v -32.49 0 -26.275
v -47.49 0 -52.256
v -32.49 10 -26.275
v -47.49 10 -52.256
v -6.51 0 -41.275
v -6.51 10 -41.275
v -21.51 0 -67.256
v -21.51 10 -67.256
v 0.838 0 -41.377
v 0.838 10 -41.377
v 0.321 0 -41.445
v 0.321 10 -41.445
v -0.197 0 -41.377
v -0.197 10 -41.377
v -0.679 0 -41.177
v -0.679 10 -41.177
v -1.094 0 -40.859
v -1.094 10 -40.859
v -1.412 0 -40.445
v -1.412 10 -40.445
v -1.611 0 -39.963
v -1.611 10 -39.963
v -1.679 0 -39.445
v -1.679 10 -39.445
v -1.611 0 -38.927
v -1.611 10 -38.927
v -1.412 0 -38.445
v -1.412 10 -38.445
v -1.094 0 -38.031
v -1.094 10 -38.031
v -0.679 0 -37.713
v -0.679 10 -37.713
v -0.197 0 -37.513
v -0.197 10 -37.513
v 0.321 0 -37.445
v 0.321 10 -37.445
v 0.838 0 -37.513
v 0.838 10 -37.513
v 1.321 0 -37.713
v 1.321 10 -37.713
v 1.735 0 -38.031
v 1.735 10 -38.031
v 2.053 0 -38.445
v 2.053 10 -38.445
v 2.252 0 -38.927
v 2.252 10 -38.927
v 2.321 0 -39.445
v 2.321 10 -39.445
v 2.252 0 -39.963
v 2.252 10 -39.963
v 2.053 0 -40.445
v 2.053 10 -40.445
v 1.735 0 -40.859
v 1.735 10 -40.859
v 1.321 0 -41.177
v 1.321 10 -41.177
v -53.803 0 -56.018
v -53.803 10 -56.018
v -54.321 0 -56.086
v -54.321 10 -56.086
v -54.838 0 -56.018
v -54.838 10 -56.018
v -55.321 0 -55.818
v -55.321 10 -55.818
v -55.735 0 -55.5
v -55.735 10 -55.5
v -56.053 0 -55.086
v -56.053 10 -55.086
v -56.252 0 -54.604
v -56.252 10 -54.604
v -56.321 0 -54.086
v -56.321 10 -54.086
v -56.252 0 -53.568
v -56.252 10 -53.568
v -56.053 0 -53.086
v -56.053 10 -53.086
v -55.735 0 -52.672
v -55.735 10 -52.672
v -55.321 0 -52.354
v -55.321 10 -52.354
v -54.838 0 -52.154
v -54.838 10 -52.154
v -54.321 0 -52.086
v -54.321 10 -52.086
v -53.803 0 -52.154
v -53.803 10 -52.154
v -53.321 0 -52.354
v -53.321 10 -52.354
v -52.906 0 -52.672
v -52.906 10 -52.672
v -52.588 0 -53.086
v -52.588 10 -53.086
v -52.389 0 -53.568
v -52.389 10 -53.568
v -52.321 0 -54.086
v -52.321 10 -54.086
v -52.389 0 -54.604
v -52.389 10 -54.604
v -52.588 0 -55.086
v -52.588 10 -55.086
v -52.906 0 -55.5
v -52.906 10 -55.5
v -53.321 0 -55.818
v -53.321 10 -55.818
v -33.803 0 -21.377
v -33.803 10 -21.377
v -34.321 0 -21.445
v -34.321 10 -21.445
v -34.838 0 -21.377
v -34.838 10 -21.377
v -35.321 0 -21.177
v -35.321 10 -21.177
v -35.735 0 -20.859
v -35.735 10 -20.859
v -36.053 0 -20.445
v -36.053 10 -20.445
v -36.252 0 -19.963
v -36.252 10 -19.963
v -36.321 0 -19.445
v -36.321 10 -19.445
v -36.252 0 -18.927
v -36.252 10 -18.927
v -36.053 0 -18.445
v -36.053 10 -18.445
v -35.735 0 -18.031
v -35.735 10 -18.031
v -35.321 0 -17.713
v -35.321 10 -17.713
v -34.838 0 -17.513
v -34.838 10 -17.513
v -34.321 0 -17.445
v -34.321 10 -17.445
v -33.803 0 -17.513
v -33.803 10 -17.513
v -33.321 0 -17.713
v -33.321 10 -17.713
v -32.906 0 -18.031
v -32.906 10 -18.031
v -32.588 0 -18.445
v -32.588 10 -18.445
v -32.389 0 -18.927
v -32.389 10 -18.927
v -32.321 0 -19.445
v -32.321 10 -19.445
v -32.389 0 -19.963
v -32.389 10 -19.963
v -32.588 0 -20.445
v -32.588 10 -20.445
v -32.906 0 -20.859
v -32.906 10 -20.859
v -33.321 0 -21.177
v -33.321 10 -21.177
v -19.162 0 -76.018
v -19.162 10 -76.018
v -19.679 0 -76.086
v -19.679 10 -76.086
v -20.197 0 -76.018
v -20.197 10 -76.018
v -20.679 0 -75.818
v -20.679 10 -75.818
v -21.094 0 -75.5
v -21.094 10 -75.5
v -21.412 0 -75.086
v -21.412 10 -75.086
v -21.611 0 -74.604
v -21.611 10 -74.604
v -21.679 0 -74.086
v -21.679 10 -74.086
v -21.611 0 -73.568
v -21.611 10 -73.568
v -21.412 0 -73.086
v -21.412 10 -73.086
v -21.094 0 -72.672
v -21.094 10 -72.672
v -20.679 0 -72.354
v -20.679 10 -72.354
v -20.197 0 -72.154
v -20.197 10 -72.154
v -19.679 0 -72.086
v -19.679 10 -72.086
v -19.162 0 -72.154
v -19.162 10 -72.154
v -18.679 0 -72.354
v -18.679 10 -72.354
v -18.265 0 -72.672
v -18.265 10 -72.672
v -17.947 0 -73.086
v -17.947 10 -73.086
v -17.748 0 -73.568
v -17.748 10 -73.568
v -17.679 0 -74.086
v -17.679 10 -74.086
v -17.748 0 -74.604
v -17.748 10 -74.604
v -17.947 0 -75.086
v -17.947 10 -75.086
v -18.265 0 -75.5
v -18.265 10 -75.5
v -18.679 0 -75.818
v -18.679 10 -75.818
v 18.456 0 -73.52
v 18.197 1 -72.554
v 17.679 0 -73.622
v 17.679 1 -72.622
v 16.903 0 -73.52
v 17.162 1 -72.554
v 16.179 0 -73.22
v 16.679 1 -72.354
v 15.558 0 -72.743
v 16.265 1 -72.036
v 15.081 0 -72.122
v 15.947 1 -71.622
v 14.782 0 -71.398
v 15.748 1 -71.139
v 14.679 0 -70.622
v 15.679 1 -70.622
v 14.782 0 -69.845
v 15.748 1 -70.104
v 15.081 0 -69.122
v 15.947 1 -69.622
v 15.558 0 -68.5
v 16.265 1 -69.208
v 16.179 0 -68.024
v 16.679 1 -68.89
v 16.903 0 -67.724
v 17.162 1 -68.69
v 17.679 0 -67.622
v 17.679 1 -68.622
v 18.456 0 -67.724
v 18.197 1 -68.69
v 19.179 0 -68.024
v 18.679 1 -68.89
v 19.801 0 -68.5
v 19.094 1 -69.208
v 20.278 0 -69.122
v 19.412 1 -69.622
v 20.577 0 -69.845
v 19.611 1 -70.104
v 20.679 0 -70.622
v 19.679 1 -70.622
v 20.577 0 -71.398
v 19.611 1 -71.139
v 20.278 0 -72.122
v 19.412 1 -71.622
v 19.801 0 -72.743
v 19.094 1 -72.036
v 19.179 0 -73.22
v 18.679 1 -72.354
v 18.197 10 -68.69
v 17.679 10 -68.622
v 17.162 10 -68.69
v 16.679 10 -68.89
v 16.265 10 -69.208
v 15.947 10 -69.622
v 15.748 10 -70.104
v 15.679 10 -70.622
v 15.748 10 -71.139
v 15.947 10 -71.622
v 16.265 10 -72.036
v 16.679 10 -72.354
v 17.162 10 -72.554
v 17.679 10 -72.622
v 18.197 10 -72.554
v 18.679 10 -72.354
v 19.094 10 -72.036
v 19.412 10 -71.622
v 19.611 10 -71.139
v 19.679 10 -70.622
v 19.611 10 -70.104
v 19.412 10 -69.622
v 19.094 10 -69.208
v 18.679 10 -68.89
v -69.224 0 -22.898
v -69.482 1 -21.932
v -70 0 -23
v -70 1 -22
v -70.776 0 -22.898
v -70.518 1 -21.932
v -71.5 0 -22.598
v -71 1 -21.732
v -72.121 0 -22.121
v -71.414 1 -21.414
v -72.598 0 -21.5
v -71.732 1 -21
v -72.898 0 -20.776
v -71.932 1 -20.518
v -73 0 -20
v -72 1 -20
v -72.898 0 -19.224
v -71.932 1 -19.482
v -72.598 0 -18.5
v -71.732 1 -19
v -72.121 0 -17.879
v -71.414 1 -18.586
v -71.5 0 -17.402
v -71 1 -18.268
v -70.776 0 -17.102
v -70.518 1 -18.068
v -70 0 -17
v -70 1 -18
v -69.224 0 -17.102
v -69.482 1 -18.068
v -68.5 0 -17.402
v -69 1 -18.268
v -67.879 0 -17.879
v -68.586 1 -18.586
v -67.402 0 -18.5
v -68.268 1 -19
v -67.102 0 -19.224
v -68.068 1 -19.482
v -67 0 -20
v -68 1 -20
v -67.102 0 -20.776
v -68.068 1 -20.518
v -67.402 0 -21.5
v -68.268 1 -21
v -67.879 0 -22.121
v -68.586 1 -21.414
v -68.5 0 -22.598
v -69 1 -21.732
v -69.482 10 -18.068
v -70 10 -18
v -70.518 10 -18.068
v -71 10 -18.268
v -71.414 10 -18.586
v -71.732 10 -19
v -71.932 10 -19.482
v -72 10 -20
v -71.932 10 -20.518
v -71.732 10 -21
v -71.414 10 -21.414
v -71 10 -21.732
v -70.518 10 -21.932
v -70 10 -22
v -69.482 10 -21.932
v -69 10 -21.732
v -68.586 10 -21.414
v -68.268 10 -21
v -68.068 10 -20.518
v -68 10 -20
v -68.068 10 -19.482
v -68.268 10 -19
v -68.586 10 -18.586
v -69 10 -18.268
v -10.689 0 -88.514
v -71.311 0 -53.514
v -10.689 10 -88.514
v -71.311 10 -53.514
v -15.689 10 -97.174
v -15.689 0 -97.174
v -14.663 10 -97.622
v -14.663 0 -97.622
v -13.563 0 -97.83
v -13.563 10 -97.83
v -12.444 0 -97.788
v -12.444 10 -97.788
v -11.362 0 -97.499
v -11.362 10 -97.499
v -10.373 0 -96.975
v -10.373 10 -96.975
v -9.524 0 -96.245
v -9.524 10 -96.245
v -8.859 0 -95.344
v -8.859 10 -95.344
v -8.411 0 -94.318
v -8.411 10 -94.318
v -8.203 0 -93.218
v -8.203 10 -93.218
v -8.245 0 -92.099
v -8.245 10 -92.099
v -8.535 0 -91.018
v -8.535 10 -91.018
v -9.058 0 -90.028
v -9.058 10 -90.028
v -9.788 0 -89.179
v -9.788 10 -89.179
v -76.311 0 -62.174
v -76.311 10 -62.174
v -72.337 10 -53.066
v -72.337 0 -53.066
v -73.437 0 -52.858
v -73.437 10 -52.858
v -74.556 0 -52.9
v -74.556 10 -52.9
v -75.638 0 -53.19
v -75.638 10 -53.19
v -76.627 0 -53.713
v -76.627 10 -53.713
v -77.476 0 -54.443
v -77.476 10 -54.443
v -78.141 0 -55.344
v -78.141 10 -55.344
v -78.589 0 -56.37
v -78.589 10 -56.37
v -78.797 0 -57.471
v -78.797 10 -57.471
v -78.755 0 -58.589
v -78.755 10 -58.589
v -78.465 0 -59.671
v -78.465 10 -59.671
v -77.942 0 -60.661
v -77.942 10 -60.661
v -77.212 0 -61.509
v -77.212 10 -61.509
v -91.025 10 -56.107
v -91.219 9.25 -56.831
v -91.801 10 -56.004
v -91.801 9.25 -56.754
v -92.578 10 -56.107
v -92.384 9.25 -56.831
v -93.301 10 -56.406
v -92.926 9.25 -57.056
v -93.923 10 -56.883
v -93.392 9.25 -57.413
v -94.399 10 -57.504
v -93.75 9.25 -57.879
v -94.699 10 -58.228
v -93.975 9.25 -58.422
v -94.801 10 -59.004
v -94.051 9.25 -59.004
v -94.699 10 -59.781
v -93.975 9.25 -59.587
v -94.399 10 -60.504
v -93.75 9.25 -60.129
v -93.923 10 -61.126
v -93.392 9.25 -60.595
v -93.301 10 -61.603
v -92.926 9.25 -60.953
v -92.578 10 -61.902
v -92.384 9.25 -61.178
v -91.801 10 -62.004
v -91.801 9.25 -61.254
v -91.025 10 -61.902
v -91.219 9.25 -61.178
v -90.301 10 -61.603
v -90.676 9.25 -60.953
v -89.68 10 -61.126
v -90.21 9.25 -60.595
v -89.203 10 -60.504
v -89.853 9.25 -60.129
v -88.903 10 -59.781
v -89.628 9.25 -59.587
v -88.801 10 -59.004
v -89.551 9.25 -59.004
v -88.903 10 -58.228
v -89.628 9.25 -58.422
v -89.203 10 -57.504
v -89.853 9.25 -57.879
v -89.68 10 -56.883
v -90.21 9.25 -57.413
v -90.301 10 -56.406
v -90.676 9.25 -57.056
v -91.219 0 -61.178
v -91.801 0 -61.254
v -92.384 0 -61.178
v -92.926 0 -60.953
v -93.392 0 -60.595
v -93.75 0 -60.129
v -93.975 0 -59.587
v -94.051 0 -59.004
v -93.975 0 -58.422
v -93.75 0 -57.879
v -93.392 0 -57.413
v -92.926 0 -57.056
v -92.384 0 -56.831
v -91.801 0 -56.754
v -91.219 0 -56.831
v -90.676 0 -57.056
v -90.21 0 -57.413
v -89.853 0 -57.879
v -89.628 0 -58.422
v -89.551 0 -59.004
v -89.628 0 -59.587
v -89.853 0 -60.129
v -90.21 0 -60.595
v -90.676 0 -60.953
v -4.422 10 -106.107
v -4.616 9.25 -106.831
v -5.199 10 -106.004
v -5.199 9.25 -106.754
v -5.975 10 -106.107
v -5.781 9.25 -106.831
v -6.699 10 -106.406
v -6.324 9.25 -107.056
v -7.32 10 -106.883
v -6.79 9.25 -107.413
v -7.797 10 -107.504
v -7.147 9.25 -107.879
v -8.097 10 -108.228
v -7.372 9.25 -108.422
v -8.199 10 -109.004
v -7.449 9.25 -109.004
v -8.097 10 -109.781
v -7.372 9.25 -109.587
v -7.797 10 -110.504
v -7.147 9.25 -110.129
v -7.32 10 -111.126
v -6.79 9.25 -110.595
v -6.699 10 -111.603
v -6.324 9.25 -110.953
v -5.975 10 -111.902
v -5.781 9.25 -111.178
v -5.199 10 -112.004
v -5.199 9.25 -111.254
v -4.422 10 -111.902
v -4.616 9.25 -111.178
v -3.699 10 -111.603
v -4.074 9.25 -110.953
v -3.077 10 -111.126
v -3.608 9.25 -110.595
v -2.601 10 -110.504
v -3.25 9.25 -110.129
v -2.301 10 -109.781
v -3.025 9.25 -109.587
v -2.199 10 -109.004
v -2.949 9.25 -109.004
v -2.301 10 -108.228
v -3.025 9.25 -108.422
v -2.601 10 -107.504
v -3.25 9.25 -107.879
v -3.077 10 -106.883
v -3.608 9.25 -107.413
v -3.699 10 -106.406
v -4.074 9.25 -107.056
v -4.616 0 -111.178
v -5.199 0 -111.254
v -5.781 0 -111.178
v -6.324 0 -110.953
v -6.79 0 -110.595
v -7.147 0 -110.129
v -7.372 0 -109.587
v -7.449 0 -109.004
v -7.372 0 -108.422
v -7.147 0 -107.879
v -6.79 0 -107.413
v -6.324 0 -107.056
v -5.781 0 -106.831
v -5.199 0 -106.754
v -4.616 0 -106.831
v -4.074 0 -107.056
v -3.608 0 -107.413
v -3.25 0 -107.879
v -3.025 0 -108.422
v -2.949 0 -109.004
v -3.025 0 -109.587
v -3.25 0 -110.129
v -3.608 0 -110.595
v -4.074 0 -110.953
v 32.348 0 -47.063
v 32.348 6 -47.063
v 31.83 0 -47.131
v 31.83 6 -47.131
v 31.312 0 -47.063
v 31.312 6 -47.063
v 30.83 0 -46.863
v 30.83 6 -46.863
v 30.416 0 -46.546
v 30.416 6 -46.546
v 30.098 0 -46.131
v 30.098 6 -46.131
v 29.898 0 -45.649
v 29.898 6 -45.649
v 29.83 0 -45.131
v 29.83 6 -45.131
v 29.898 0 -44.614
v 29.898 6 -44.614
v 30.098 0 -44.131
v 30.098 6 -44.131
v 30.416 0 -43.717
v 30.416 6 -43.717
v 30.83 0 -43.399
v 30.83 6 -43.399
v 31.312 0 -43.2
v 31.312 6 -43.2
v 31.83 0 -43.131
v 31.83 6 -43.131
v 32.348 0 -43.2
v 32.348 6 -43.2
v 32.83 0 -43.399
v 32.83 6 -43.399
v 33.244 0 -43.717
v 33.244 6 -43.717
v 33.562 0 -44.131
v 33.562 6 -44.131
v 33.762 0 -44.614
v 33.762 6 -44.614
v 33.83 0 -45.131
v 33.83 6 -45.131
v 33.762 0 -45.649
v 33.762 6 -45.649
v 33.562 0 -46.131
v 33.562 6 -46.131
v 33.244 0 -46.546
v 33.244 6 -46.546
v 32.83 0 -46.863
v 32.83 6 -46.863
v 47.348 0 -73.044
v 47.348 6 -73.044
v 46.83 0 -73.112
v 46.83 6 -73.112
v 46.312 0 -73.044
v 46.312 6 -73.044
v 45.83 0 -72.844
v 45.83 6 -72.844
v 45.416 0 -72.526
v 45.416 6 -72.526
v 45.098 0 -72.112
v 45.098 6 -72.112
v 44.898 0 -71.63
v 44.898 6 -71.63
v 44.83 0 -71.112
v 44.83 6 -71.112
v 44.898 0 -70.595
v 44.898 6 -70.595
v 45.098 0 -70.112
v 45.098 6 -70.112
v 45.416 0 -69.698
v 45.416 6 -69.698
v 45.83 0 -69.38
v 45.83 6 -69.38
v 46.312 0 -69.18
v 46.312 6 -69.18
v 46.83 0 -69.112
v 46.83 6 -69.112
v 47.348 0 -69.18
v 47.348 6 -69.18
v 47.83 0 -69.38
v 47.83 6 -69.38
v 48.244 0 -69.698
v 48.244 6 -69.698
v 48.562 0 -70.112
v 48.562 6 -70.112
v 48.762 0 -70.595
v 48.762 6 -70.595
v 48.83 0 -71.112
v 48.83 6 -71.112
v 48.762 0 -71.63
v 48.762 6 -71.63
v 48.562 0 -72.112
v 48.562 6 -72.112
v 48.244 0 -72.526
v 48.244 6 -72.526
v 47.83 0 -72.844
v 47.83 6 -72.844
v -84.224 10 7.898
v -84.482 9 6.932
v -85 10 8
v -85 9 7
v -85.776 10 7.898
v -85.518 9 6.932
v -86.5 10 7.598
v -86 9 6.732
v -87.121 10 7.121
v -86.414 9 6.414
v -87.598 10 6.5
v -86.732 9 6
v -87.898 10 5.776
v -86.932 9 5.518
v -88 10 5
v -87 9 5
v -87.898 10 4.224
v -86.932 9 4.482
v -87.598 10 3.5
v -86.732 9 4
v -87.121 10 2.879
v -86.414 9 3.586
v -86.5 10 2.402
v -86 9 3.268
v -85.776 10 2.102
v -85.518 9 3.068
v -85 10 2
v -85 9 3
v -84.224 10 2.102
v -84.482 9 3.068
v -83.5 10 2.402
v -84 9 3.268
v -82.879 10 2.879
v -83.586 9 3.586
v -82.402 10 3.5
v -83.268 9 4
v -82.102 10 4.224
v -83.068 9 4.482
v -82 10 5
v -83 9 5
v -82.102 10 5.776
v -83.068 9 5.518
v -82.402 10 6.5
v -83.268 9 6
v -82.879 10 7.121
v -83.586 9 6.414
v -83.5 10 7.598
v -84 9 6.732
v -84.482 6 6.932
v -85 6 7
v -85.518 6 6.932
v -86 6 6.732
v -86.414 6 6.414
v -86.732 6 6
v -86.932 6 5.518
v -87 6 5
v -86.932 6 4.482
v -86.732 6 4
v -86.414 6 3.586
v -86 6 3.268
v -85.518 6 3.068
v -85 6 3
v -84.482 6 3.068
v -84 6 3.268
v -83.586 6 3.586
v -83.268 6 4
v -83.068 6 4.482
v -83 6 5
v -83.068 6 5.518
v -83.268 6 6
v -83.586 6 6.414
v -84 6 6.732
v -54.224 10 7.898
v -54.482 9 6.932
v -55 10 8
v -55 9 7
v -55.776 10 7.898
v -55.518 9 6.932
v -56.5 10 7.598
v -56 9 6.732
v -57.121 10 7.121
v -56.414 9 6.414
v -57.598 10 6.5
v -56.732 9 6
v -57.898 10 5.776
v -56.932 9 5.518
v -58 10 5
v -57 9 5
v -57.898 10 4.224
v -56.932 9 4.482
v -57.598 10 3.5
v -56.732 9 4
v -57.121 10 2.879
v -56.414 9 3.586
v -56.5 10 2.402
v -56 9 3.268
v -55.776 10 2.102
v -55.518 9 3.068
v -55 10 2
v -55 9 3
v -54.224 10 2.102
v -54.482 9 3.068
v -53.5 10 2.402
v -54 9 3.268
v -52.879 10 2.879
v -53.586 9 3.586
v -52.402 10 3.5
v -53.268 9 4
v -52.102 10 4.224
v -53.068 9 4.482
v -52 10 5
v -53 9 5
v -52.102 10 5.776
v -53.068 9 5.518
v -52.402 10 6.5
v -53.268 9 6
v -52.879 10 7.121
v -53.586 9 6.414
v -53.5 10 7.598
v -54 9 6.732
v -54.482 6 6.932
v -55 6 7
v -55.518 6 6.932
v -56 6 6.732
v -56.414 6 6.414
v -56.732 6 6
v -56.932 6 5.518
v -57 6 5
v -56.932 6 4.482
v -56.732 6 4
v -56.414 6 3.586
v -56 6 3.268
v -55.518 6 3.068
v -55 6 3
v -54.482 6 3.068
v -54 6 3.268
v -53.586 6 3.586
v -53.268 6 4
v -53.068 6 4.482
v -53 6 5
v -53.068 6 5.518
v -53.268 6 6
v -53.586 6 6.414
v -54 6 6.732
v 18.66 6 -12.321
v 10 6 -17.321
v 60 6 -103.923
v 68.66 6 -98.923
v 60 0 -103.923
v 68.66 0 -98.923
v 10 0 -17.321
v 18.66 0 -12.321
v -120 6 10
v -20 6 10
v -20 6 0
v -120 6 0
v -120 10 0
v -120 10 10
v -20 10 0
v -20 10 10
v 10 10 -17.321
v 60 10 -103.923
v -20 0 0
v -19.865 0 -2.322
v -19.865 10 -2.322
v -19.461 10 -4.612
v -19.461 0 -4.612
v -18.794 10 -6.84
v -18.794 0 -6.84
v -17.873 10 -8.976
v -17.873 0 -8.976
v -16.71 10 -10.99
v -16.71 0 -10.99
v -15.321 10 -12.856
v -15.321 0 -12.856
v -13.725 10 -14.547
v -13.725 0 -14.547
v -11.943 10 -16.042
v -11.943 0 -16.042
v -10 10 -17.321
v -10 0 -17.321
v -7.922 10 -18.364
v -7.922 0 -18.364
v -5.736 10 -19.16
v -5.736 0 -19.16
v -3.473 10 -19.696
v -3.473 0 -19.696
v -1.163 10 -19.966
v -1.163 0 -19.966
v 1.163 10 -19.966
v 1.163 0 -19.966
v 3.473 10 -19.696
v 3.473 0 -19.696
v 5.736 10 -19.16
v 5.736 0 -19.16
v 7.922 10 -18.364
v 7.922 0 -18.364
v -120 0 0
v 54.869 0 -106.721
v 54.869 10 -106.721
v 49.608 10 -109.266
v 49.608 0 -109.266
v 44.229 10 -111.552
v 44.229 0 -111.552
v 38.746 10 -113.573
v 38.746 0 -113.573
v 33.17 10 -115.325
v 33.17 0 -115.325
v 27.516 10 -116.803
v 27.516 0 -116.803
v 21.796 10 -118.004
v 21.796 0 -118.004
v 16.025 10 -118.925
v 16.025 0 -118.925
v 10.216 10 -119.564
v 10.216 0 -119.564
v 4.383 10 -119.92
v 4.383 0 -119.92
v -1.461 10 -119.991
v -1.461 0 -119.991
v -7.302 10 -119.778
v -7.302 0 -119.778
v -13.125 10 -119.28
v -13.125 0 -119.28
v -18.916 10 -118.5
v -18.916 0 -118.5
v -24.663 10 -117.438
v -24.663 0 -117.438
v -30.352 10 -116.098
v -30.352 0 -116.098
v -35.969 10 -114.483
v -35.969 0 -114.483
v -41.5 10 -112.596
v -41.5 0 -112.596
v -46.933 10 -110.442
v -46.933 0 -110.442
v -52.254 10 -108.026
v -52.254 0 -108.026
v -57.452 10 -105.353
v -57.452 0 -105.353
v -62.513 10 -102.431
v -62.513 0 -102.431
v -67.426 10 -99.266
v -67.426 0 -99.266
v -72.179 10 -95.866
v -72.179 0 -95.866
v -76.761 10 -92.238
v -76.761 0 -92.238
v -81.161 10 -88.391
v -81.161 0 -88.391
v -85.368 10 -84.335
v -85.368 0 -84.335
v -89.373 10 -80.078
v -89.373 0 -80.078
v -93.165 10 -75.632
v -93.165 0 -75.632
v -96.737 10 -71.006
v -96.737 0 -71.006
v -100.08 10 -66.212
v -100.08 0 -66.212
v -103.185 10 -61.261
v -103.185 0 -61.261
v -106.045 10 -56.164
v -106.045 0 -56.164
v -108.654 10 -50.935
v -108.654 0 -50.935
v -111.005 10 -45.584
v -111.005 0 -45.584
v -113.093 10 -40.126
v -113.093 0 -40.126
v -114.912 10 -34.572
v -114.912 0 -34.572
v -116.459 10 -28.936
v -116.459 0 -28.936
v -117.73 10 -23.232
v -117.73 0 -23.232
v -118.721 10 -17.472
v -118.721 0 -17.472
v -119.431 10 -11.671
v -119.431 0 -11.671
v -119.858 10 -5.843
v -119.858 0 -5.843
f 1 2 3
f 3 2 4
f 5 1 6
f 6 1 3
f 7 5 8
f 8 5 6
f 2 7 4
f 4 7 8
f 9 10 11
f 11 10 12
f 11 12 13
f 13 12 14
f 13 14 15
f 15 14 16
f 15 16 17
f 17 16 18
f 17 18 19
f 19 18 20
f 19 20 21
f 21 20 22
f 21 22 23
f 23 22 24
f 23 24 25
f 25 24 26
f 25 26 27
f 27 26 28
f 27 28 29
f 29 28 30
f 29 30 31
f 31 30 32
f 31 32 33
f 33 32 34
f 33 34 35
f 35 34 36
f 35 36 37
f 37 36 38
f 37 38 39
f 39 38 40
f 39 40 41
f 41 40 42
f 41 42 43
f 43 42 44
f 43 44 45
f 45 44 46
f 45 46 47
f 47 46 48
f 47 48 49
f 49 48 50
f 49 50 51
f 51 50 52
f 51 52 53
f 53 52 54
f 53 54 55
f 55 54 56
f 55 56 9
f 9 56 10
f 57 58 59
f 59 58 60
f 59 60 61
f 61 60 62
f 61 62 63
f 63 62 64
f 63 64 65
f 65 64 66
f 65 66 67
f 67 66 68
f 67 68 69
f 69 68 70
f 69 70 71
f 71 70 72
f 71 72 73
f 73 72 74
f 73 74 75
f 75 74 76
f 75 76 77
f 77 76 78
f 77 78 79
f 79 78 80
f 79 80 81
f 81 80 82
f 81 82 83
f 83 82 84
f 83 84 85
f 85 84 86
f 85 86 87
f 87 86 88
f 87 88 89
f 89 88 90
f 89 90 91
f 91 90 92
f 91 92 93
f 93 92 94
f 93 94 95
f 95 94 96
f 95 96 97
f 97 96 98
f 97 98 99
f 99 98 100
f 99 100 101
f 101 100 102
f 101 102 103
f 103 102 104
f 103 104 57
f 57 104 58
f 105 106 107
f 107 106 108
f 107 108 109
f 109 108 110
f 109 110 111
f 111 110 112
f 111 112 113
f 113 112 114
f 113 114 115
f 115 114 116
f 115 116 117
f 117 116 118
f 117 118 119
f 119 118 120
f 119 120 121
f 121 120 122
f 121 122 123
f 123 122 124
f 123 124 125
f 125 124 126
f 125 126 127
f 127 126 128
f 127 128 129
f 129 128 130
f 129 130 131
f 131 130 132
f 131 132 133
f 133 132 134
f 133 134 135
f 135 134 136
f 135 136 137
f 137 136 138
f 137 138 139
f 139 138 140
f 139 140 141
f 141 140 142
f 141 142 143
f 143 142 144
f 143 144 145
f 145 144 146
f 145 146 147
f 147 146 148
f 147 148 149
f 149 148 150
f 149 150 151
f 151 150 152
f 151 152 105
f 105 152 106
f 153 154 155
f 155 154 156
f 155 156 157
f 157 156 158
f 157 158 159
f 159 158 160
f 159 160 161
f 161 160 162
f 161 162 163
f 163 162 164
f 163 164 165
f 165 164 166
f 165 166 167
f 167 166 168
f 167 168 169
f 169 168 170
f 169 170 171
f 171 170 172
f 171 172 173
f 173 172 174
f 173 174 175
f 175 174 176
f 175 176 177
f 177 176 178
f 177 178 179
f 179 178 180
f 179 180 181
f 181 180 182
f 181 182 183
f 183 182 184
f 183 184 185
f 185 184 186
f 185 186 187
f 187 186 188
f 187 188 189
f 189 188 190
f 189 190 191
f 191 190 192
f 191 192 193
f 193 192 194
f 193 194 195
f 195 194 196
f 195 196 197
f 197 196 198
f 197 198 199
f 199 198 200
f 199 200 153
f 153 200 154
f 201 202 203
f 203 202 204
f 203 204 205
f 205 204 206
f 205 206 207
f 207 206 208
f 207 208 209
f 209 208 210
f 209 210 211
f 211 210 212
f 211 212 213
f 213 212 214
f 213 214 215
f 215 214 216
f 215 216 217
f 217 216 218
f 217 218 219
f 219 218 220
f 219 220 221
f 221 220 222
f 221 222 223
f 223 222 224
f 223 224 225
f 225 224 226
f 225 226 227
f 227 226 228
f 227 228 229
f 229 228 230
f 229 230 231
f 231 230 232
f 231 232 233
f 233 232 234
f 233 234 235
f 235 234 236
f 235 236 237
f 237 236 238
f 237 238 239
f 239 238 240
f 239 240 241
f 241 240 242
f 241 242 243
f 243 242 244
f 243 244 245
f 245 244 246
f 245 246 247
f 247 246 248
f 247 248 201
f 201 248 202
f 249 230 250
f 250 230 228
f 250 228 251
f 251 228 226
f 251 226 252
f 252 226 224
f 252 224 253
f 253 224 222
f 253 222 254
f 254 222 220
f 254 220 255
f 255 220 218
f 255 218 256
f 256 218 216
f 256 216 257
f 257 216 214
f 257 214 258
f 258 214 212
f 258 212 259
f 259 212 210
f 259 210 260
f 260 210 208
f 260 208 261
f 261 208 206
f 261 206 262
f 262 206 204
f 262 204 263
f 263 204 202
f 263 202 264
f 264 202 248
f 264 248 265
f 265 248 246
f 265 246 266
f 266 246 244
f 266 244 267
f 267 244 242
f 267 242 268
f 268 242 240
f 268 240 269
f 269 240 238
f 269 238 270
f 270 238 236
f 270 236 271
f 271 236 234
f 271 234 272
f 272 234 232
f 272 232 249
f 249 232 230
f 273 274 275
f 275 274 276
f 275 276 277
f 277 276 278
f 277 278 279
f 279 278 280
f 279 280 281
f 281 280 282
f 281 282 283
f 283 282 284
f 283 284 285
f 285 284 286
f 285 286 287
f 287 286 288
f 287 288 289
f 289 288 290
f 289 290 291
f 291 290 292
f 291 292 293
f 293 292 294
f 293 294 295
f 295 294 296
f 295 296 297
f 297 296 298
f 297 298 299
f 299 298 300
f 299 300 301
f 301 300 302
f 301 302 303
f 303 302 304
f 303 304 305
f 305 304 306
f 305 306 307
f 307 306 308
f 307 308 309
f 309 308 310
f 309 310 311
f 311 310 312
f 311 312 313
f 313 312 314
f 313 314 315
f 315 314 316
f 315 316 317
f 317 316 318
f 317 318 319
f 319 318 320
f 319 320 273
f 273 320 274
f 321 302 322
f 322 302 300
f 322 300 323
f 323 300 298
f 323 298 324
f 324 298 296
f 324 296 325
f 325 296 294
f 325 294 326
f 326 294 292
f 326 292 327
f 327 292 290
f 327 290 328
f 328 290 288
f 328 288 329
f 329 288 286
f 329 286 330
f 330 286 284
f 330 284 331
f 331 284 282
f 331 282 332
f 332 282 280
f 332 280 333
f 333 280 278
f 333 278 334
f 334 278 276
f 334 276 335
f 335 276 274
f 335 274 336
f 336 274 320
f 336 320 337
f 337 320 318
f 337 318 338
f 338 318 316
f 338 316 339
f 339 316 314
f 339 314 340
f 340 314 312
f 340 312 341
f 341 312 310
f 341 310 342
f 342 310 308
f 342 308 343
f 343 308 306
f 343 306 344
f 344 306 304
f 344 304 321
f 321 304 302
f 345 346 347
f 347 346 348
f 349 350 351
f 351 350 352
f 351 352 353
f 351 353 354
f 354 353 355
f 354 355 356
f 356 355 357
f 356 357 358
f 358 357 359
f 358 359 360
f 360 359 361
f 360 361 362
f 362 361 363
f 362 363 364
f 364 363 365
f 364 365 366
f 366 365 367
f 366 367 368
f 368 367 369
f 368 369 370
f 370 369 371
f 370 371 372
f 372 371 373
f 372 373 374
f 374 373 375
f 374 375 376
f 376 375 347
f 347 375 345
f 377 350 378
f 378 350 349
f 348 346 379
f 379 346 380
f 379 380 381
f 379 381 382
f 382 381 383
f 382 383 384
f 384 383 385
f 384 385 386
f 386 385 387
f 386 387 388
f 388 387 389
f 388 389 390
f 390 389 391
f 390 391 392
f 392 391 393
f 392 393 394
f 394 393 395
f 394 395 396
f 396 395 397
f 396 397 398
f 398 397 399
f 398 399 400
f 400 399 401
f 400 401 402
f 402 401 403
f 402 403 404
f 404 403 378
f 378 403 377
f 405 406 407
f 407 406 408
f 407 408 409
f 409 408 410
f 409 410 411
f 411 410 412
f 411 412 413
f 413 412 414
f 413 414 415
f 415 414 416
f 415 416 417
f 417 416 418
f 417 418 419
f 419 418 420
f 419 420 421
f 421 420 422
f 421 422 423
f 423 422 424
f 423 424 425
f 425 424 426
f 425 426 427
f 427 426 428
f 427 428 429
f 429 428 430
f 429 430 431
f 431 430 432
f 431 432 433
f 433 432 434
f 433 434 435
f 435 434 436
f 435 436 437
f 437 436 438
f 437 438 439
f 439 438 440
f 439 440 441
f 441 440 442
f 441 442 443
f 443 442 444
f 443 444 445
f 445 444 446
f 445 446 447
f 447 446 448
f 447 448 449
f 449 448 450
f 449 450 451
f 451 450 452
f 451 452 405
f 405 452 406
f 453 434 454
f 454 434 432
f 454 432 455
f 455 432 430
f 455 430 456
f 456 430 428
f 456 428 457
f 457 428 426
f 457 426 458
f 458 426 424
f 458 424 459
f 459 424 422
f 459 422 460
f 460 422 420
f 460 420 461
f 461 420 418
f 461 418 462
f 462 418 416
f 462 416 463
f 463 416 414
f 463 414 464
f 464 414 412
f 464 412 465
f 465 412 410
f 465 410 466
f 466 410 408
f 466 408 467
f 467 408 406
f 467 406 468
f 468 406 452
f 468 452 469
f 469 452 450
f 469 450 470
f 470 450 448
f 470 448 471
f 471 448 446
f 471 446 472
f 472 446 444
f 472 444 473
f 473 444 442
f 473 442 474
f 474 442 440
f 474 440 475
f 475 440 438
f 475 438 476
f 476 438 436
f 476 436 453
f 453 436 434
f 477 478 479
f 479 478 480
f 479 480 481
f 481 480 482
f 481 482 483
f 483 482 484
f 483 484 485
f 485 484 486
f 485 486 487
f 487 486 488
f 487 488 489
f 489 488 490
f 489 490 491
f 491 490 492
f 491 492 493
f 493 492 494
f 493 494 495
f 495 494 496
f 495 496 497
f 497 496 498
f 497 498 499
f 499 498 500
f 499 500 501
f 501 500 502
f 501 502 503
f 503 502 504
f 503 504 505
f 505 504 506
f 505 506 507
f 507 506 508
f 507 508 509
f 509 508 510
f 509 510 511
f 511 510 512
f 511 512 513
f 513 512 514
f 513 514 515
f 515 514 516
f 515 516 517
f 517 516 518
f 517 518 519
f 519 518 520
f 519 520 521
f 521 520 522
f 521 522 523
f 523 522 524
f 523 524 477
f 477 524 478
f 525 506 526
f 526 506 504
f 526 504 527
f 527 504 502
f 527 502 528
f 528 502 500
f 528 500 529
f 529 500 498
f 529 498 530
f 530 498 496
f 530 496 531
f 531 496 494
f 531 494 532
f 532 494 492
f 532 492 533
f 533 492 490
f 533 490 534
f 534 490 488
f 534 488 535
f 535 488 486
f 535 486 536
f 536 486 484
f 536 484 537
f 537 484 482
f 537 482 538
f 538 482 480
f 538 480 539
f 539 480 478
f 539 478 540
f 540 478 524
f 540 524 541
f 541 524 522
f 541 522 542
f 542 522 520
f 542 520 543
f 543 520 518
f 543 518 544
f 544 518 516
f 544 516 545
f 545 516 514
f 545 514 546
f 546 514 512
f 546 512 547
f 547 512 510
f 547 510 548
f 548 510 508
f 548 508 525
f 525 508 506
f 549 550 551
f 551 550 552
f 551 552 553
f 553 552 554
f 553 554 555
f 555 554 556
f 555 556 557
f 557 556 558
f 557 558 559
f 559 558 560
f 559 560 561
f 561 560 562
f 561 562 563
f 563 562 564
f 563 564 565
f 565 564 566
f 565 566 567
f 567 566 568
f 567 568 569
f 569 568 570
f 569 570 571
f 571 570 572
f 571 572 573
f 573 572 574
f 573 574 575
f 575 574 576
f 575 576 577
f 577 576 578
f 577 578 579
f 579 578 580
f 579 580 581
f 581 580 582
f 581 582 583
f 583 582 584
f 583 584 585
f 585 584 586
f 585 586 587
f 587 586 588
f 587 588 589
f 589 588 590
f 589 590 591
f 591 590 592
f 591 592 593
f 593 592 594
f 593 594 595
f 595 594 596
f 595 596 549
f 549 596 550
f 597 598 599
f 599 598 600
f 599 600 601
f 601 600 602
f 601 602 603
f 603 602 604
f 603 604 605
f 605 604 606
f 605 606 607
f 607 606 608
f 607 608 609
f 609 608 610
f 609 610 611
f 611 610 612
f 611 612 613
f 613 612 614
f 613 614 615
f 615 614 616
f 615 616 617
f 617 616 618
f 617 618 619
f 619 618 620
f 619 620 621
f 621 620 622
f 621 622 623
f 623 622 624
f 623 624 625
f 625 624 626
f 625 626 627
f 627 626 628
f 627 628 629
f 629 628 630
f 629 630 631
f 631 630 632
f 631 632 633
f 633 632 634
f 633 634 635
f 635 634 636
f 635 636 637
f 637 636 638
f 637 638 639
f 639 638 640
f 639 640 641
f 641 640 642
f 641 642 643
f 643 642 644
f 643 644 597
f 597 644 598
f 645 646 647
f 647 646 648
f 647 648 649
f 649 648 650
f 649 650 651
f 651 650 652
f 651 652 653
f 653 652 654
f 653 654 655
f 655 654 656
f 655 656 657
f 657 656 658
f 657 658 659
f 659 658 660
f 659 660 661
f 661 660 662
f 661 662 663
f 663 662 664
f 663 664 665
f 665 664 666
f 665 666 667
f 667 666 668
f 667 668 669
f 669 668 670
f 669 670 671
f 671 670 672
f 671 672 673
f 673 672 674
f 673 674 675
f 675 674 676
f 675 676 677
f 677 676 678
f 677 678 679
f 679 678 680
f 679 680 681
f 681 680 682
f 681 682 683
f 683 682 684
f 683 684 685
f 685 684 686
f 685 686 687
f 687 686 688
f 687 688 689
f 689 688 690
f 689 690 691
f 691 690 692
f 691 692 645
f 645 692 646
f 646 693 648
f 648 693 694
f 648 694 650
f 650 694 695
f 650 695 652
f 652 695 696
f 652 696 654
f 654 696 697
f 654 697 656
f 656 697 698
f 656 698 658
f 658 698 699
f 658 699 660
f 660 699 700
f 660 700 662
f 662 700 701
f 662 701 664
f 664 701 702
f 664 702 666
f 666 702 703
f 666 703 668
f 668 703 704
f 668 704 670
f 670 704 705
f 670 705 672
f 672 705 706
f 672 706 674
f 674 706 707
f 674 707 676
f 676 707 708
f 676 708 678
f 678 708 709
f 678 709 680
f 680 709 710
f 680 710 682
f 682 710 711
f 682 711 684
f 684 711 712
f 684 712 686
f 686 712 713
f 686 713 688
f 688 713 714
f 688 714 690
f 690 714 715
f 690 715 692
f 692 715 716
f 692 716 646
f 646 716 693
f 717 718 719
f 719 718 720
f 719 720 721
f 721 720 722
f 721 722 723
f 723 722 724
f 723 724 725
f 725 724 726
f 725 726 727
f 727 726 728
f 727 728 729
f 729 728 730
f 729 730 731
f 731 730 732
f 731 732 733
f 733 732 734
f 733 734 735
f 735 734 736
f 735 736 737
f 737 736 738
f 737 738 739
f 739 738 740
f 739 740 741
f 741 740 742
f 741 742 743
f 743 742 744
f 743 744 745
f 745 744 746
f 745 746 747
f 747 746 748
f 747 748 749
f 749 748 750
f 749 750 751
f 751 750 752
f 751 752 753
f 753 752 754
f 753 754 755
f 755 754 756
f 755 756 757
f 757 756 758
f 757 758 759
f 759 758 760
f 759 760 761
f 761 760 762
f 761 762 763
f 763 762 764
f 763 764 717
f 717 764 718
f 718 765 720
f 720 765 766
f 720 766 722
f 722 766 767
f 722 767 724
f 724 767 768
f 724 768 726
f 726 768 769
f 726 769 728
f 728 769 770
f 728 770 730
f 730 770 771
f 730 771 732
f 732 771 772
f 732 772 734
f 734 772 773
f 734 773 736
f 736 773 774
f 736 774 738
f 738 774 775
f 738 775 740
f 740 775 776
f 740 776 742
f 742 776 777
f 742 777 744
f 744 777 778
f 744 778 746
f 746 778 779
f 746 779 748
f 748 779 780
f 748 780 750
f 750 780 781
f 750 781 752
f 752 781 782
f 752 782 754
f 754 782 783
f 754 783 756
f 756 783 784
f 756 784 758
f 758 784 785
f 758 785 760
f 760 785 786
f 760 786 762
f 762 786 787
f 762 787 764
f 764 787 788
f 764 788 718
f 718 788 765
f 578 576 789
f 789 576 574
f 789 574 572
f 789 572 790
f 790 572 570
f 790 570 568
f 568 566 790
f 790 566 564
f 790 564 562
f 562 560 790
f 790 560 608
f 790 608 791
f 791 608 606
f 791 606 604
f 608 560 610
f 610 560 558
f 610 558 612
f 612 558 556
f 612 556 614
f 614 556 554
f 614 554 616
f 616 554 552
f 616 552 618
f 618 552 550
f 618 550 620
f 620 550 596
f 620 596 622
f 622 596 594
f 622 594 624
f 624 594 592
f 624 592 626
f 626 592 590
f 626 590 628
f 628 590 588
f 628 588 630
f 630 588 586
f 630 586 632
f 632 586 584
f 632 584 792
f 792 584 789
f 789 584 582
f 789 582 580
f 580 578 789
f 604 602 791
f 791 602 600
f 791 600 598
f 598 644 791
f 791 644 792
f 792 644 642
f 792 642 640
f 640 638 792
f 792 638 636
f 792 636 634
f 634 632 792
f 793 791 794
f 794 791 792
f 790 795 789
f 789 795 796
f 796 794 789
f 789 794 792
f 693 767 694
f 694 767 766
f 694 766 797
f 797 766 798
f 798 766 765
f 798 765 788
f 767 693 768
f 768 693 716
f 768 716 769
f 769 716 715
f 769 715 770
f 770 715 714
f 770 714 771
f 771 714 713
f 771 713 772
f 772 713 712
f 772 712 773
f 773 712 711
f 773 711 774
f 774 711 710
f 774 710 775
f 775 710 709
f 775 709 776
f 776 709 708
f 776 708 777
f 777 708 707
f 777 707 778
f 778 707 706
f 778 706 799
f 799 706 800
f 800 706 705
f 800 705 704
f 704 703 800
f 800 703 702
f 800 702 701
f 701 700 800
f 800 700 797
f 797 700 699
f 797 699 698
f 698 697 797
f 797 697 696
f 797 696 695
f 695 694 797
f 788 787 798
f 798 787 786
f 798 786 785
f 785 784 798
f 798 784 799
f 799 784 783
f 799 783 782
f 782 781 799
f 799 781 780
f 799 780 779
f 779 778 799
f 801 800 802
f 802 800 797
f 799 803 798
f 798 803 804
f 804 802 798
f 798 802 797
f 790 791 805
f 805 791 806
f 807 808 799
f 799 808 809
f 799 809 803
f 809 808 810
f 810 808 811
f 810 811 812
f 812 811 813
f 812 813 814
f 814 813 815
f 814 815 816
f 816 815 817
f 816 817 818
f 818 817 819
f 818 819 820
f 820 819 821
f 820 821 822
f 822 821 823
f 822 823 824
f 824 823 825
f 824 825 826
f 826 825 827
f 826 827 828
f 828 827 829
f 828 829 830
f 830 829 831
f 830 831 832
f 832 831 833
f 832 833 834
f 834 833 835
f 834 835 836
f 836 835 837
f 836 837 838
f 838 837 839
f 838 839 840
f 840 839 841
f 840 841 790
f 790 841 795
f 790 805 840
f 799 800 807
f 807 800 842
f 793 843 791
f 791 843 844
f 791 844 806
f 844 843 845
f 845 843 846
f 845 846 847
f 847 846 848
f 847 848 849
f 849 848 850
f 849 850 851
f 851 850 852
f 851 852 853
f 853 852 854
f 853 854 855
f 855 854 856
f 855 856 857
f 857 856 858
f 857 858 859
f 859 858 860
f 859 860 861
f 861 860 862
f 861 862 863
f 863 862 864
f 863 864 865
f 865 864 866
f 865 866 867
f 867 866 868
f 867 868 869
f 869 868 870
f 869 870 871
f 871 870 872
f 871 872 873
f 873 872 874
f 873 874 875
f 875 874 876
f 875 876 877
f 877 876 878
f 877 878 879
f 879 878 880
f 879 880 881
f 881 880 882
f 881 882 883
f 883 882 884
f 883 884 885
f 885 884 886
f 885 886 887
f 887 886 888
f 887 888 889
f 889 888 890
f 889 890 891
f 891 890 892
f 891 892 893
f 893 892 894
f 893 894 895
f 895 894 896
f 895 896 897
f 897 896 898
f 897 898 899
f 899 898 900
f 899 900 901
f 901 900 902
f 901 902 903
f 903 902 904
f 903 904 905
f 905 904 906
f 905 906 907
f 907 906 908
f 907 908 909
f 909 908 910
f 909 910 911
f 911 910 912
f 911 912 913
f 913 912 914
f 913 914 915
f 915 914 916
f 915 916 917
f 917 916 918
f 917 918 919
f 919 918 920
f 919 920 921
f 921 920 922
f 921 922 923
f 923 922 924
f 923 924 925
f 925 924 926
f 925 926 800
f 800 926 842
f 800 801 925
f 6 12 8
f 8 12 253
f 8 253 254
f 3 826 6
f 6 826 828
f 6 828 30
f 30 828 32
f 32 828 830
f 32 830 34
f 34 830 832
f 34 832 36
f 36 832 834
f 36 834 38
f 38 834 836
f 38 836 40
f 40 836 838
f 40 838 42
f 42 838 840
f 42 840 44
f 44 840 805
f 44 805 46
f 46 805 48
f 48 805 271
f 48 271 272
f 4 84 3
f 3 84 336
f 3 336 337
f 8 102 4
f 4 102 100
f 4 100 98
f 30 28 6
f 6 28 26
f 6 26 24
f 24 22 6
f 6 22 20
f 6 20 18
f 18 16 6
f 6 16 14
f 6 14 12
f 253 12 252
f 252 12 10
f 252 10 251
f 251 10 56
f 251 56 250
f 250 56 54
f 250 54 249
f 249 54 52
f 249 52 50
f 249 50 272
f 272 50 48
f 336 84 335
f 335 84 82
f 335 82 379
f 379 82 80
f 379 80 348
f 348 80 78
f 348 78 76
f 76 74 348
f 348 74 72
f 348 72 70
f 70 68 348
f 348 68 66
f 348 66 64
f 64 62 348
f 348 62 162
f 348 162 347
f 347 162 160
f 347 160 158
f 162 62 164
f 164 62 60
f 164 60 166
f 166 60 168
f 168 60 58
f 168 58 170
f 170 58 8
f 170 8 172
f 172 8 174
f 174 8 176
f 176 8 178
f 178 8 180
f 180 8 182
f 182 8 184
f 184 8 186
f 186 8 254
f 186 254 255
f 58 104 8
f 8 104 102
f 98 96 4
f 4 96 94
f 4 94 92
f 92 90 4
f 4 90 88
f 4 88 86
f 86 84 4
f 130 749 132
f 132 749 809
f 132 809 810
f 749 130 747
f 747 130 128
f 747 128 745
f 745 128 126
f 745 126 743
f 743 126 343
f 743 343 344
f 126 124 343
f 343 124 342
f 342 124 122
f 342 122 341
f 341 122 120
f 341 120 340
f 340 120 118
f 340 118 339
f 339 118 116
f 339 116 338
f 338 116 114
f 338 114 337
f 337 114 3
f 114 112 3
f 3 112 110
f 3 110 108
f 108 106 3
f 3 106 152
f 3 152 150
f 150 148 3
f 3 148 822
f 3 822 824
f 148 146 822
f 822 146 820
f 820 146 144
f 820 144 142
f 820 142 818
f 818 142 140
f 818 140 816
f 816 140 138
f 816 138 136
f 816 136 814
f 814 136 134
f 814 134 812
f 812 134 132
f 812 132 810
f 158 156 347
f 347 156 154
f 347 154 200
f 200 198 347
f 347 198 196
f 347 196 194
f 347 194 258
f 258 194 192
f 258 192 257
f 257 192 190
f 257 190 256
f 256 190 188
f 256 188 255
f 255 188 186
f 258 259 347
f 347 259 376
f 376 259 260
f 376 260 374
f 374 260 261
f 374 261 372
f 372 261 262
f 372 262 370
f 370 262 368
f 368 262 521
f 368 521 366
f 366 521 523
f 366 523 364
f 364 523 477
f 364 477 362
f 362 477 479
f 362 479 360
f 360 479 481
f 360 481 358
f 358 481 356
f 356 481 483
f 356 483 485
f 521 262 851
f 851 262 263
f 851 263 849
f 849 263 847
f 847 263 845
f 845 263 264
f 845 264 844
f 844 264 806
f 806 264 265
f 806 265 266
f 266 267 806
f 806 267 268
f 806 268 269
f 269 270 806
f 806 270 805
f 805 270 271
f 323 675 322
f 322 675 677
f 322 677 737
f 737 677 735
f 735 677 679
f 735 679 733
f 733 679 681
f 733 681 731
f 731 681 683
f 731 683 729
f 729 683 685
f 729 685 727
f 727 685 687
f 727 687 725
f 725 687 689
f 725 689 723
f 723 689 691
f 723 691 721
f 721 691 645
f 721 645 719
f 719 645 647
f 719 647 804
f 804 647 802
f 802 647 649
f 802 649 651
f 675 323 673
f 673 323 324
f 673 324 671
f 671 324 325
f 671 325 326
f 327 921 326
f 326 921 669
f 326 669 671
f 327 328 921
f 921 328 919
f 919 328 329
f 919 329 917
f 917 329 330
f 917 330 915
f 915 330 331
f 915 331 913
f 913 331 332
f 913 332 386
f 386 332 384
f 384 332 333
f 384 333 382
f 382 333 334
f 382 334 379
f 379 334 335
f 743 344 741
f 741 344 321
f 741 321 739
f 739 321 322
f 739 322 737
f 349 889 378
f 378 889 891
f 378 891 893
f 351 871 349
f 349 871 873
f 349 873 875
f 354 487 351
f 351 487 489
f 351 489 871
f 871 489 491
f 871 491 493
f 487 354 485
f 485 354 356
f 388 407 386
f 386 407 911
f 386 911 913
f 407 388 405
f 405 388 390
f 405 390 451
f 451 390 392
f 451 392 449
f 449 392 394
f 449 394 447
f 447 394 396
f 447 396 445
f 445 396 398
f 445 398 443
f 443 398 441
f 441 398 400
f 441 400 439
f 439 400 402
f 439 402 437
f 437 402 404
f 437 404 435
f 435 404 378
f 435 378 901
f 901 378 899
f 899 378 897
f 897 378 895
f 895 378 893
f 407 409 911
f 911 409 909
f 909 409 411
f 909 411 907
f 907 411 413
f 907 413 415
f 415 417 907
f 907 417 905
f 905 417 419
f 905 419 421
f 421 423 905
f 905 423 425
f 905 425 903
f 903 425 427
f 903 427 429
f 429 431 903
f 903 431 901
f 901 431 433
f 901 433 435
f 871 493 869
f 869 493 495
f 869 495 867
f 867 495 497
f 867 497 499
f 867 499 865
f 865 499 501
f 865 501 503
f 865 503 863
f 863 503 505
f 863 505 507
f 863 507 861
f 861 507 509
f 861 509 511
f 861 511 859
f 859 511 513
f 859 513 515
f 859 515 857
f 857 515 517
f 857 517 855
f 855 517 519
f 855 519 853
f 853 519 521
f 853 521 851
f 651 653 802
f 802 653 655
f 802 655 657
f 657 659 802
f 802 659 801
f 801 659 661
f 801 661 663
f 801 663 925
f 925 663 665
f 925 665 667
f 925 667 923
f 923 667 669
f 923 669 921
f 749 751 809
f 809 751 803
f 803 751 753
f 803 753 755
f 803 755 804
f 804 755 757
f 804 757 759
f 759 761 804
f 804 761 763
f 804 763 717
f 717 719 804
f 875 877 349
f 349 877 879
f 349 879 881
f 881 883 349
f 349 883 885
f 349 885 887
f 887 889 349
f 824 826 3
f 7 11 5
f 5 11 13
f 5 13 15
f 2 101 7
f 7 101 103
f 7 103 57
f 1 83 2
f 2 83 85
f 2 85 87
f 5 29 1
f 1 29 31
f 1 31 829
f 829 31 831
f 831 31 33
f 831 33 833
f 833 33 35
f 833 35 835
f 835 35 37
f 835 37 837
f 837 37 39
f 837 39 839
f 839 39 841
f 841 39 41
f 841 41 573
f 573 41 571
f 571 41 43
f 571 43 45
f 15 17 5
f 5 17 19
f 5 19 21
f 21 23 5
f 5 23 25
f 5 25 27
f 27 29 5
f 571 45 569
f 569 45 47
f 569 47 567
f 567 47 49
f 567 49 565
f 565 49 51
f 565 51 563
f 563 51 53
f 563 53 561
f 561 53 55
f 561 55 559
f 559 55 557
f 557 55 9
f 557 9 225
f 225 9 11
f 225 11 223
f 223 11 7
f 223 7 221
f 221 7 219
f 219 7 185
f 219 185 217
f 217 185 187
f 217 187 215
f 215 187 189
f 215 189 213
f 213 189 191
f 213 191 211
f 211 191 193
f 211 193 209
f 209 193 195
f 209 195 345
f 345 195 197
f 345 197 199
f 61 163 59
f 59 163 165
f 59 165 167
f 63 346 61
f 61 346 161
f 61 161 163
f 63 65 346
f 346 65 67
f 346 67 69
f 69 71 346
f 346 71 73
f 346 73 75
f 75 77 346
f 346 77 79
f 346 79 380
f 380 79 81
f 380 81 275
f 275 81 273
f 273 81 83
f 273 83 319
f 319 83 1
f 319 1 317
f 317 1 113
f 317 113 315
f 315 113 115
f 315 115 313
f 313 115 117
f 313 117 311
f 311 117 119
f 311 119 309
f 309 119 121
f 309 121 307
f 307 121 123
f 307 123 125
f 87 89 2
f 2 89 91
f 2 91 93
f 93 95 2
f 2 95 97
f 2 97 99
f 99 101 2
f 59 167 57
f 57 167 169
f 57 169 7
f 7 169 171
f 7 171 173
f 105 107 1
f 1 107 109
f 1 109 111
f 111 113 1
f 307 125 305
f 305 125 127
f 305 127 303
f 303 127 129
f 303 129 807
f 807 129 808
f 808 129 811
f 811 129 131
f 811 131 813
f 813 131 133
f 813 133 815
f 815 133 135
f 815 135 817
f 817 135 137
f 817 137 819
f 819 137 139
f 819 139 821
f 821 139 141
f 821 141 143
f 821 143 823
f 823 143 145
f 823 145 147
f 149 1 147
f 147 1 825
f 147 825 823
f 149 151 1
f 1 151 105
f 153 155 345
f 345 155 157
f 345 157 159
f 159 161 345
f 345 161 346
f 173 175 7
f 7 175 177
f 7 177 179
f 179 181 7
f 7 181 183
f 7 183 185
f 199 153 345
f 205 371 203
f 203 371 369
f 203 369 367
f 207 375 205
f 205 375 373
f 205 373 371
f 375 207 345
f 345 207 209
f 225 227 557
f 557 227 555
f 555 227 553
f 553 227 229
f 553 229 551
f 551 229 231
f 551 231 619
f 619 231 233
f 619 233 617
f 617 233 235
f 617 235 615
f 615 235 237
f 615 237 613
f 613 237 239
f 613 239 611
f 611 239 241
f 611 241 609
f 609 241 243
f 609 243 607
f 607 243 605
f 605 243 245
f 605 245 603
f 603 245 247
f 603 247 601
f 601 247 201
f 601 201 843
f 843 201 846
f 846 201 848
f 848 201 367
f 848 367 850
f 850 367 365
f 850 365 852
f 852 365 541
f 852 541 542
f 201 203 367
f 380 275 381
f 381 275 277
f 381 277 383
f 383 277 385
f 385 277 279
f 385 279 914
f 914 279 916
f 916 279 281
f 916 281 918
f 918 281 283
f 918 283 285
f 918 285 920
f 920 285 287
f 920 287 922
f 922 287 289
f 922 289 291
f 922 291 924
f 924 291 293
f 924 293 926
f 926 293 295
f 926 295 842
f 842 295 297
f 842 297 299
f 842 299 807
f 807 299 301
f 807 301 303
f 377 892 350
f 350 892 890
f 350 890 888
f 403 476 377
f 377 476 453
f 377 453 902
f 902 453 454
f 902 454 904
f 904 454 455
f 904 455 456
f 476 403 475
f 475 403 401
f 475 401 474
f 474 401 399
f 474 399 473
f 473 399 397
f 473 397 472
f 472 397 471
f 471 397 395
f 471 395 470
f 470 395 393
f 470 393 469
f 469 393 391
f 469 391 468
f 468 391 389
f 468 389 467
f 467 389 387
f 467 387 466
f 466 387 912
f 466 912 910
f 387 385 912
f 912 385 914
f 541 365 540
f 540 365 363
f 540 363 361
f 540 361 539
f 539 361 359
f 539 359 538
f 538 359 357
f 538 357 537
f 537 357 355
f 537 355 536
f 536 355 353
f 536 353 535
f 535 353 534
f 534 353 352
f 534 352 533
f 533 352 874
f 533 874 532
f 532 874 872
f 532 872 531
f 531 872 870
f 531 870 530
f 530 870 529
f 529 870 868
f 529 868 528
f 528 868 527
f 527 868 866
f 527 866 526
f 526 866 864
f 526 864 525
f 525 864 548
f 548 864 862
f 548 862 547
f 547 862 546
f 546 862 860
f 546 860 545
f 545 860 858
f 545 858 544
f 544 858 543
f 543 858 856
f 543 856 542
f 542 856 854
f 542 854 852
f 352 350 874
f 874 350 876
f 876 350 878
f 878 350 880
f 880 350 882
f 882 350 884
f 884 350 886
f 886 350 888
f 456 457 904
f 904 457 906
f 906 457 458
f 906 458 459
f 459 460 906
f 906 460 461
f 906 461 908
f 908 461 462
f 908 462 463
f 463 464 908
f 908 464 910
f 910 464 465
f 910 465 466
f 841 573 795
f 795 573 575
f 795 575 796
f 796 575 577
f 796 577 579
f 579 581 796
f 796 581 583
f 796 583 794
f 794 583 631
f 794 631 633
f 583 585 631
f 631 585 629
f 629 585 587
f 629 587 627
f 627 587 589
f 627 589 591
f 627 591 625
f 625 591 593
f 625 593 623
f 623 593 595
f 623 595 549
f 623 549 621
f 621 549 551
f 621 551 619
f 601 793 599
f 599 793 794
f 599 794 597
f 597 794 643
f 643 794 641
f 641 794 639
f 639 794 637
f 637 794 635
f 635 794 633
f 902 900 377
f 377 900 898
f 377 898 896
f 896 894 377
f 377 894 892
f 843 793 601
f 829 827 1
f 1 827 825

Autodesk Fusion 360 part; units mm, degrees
sketch "Sketch1" plane through (0, 0, 0) normal (0, 1, 0) x (1, 0, 0)
  line L0 (-120, 0) -> (-20, 0)
  line L1 (10, 17.3205) -> (60, 103.923)
  arc A0 (60, 103.923) -> (-120, 0) centre (0, 0) ccw
  arc A1 (10, 17.3205) -> (-20, 0) centre (0, 0) ccw
  dimension "d57" = 240
  dimension "d58" = 120
  dimension "d59" = 40
extrude "Extrude3" add sketch "Sketch1" along normal blind 10
sketch "Sketch9" plane through (0, 0, 0) normal (0, 0, 1) x (1, 0, 0)
  line L0 (-120, 0) -> (-20, 0)
  line L1 (-20, 0) -> (-20, 10)
  line L2 (-20, 10) -> (-120, 10)
  line L3 (-120, 10) -> (-120, 0)
  line L4 (-120, 10) -> (-10, 10)
  line L5 (-10, 10) -> (-10, 6)
  line L6 (-10, 6) -> (-120, 6)
  line L7 (-120, 6) -> (-120, 10)
  dimension "d60" = 4
extrude "Extrude8" add sketch "Sketch9" along normal blind 10 contours L1 L2 L3 L4 L6 L7
sketch "Sketch12" plane through (0, 0, 0) normal (0.866, 0, 0.5) x (0.5, 0, -0.866)
  line L0 (20, 0) -> (120, 0)
  line L1 (120, 0) -> (120, 10)
  line L2 (120, 10) -> (20, 10)
  line L3 (20, 10) -> (20, 0)
  line L4 (20, 0) -> (130, 0)
  line L5 (130, 0) -> (130, 6)
  line L6 (130, 6) -> (20, 6)
  line L7 (20, 6) -> (20, 0)
  dimension "d63" = 6
extrude "Extrude9" add sketch "Sketch12" along normal blind 10 contours L0 L1 L3 L4 L6 L7
sketch "Sketch13" plane through (0, 10, 0) normal (0, 1, 0) x (-1, 0, 0)
  arc A0 (-60, -103.923) -> (120, 0) centre (0, 0) ccw
  arc A1 (-10, -17.3205) -> (20, 0) centre (0, 0) ccw
  line L0 (-10, -17.3205) -> (-60, -103.923)
  line L1 (120, 0) -> (120, 10)
  line L2 (120, 10) -> (20, 10)
  line L3 (20, 10) -> (20, 0)
  point P0 (85, 5)
  point P1 (55, 5)
  dimension "d178" = 30
  dimension "d179" = 35
hole "Hole1" at (-85, 10, 5) at (-55, 10, 5) direction (0, -1, 0) diameter 4 depth 4 tip angle 118 countersink diameter 6 countersink angle 90
sketch "Sketch14" plane through (0, 6, 0) normal (0, 1, 0) x (-1, 0, 0)
  line L0 (-60, -103.923) -> (-10, -17.3205)
  line L1 (-10, -17.3205) -> (-18.6603, -12.3205)
  line L2 (-18.6603, -12.3205) -> (-68.6603, -98.923)
  line L3 (-68.6603, -98.923) -> (-60, -103.923)
  line L4 (-14.3301, -14.8205) -> (-64.3301, -101.423) construction
  point P0 (-31.8301, -45.1314)
  point P1 (-46.8301, -71.1122)
  dimension "d75" = 35
  dimension "d76" = 35
hole "Hole2" at (31.8301, 6, -45.1314) at (46.8301, 6, -71.1122) direction (0, -1, 0) diameter 4 depth 15 tip angle 118
sketch "Sketch15" plane through (0, 10, 0) normal (0, 1, 0) x (-1, 0, 0)
  arc A0 (-60, -103.923) -> (120, 0) centre (0, 0) ccw
  arc A1 (-10, -17.3205) -> (20, 0) centre (0, 0) ccw
  line L0 (-10, -17.3205) -> (-60, -103.923)
  line L1 (0, 0) -> (60, -103.923) construction
  line L2 (20, 0) -> (120, 0)
  line L3 (56.6506, -48.1218) -> (13.3494, -73.1218) construction
  line L4 (57.1962, -87.0666) -> (46.8038, -93.0666) construction
  circle A2 centre (85, 5) radius 3
  circle A3 centre (55, 5) radius 3
  line L5 (120, 0) -> (120, 10)
  line L6 (120, 10) -> (20, 10)
  line L7 (20, 10) -> (20, 0)
  dimension "d80" = 60
  dimension "d81" = 50
  dimension "d82" = 25
  dimension "d83" = 50
  dimension "d95" = 6
  dimension "d96" = 12
  dimension "d97" = 34
sketch "Sketch16" plane through (0, 10, 0) normal (0, 1, 0) x (-1, 0, 0)
  line L0 (120, 0) -> (120, 10)
  line L1 (20, 0) -> (20, 10)
  line L2 (-10, -17.3205) -> (-18.6603, -12.3205)
  line L3 (-60, -103.923) -> (-68.6603, -98.923)
  line L4 (120, 5) -> (20, 5) construction
  line L5 (-14.3301, -14.8205) -> (-64.3301, -101.423) construction
  line L6 (-11.0289, -109.1025) -> (-97.6314, -59.1025) construction
  line L7 (100, -45) -> (100, 55) construction
  dimension "d98" = 100
  dimension "d99" = 50
  dimension "d100" = 20
  dimension "d101" = 20
  dimension "d102" = 100
  dimension "d103" = 50
sketch "Sketch17" plane through (0, 0, 0) normal (0, -1, 0) x (1, 0, 0)
  circle A0 centre (31.8301, -45.1314) radius 2
  circle A1 centre (46.8301, -71.1122) radius 2
  arc A2 (-120, 0) -> (60, -103.923) centre (0, 0) ccw
  line L0 (60, -103.923) -> (68.6603, -98.923)
  line L1 (68.6603, -98.923) -> (18.6603, -12.3205)
  line L2 (18.6603, -12.3205) -> (10, -17.3205)
  arc A3 (-20, 0) -> (10, -17.3205) centre (0, 0) ccw
  line L3 (-20, 0) -> (-120, 0)
sketch "Sketch18" plane through (0, 0, 0) normal (0, -1, 0) x (1, 0, 0)
  point P0 (-100, -45)
  point P1 (11.0289, -109.1025)
  point P2 (-100, -45)
  point P3 (11.0289, -109.1025)
sketch "Sketch23" plane through (0, 10, 0) normal (0, 1, 0) x (-1, 0, 0)
  arc A0 (-60, -103.923) -> (120, 0) centre (0, 0) ccw
  arc A1 (-10, -17.3205) -> (20, 0) centre (0, 0) ccw
  line L0 (0, 0) -> (60, -103.923) construction
  line L1 (91.8013, -59.0045) -> (5.1987, -109.0045) construction
  line L2 (15.6891, -97.1743) -> (76.3109, -62.1743)
  arc A2 (76.3109, -62.1743) -> (71.3109, -53.5141) centre (73.8109, -57.8442) ccw
  line L3 (71.3109, -53.5141) -> (10.6891, -88.5141)
  arc A3 (10.6891, -88.5141) -> (15.6891, -97.1743) centre (13.1891, -92.8442) ccw
  line L4 (13.1891, -92.8442) -> (73.8109, -57.8442) construction
  circle A4 centre (85, 5) radius 3
  circle A5 centre (55, 5) radius 3
  line L5 (120, 0) -> (120, 10)
  line L6 (120, 10) -> (20, 10)
  line L7 (20, 10) -> (20, 0)
  dimension "d147" = 35
  dimension "d148" = 70
  dimension "d149" = 5
  dimension "d150" = 82
  dimension "d184" = 100
  dimension "d185" = 50
  dimension "d186" = 97
  dimension "d187" = 109.1284
hole "Hole5" at (-91.8013, 10, -59.0045) at (-5.1987, 10, -109.0045) direction (0, -1, 0) diameter 4.5 depth 42.794 tip angle 180 countersink diameter 6 countersink angle 90
extrude "Extrude15" cut sketch "Sketch23" against normal blind 150 contours L2 A2 L3 A3
sketch "Sketch24" plane through (0, 0, 0) normal (0, -1, 0) x (1, 0, 0)
  line L0 (-15.6891, -97.1743) -> (-76.3109, -62.1743)
  arc A0 (-71.3109, -53.5141) -> (-76.3109, -62.1743) centre (-73.8109, -57.8442) ccw
  line L1 (-71.3109, -53.5141) -> (-10.6891, -88.5141)
  arc A1 (-15.6891, -97.1743) -> (-10.6891, -88.5141) centre (-13.1891, -92.8442) ccw
  circle A2 centre (-91.8013, -59.0045) radius 2.25
  circle A3 centre (-5.1987, -109.0045) radius 2.25
  circle A4 centre (31.8301, -45.1314) radius 2
  circle A5 centre (46.8301, -71.1122) radius 2
  arc A6 (-120, 0) -> (60, -103.923) centre (0, 0) ccw
  line L2 (60, -103.923) -> (68.6603, -98.923)
  line L3 (68.6603, -98.923) -> (18.6603, -12.3205)
  line L4 (18.6603, -12.3205) -> (10, -17.3205)
  arc A7 (-20, 0) -> (10, -17.3205) centre (0, 0) ccw
  line L5 (-20, 0) -> (-120, 0)
  line L6 (10, -17.3205) -> (60, -103.923) construction
  line L7 (0, 0) -> (-70, 0) construction
  line L8 (0, 0) -> (35, -60.6218) construction
  line L9 (35, -60.6218) -> (17.6795, -70.6218) construction
  line L10 (-70, 0) -> (-70, -20) construction
  dimension "d153" = 70
  dimension "d154" = 70
  dimension "d155" = 20
  dimension "d161" = 20
hole "Hole6" at (17.6795, 0, -70.6218) at (-70, 0, -20) direction (0, 1, 0) diameter 4 depth 42.794 tip angle 180 countersink diameter 6 countersink angle 90
sketch "Sketch25" plane through (0, 10, 0) normal (0, 1, 0) x (-1, 0, 0)
  circle A0 centre (-17.6795, -70.6218) radius 2
  circle A1 centre (70, -20) radius 2
  line L0 (76.3109, -62.1743) -> (15.6891, -97.1743)
  arc A2 (10.6891, -88.5141) -> (15.6891, -97.1743) centre (13.1891, -92.8442) ccw
  line L1 (10.6891, -88.5141) -> (71.3109, -53.5141)
  arc A3 (76.3109, -62.1743) -> (71.3109, -53.5141) centre (73.8109, -57.8442) ccw
  circle A4 centre (91.8013, -59.0045) radius 3
  circle A5 centre (5.1987, -109.0045) radius 3
  circle A6 centre (85, 5) radius 3
  circle A7 centre (55, 5) radius 3
  arc A8 (-60, -103.923) -> (120, 0) centre (0, 0) ccw
  line L2 (120, 0) -> (120, 10)
  line L3 (120, 10) -> (20, 10)
  line L4 (20, 10) -> (20, 0)
  arc A9 (-10, -17.3205) -> (20, 0) centre (0, 0) ccw
  line L5 (-10, -17.3205) -> (-60, -103.923)
  line L6 (54.3205, -54.0859) -> (19.6795, -74.0859) construction
  line L7 (19.6795, -74.0859) -> (-0.3205, -39.4449) construction
  line L8 (-0.3205, -39.4449) -> (34.3205, -19.4449) construction
  line L9 (34.3205, -19.4449) -> (54.3205, -54.0859) construction
  line L10 (0, 0) -> (60, -103.923)
  line L11 (71.3109, -53.5141) -> (10.6891, -88.5141)
  line L12 (47.4904, -52.2558) -> (21.5096, -67.2558)
  line L13 (21.5096, -67.2558) -> (6.5096, -41.275)
  line L14 (6.5096, -41.275) -> (32.4904, -26.275)
  line L15 (32.4904, -26.275) -> (47.4904, -52.2558)
  point P0 (54.3205, -54.0859)
  point P1 (34.3205, -19.4449)
  point P2 (-0.3205, -39.4449)
  point P3 (19.6795, -74.0859)
  dimension "d162" = 40
  dimension "d163" = 40
  dimension "d164" = 20
  dimension "d165" = 8
  dimension "d169" = 5
  dimension "d170" = 5
  dimension "d172" = 5
  dimension "d173" = 5
hole "Hole7" at (-54.3205, 10, -54.0859) at (-34.3205, 10, -19.4449) at (0.3205, 10, -39.4449) at (-19.6795, 10, -74.0859) direction (0, -1, 0) diameter 4 depth 20 tip angle 118
extrude "Extrude16" cut sketch "Sketch25" against normal blind 40 contours L10 L12 L13 L14 | L10 L12 L14 L15
equation "d82 = d81 / 2"
equation "d96 = d95 * 2"
equation "d99 = d98 / 2"
equation "d101 = d100"
equation "d102 = d98"
equation "d103 = d99"
equation "d148 = d147 * 2"
equation "d164 = d163 / 2"
equation "d185 = d184 / 2"
